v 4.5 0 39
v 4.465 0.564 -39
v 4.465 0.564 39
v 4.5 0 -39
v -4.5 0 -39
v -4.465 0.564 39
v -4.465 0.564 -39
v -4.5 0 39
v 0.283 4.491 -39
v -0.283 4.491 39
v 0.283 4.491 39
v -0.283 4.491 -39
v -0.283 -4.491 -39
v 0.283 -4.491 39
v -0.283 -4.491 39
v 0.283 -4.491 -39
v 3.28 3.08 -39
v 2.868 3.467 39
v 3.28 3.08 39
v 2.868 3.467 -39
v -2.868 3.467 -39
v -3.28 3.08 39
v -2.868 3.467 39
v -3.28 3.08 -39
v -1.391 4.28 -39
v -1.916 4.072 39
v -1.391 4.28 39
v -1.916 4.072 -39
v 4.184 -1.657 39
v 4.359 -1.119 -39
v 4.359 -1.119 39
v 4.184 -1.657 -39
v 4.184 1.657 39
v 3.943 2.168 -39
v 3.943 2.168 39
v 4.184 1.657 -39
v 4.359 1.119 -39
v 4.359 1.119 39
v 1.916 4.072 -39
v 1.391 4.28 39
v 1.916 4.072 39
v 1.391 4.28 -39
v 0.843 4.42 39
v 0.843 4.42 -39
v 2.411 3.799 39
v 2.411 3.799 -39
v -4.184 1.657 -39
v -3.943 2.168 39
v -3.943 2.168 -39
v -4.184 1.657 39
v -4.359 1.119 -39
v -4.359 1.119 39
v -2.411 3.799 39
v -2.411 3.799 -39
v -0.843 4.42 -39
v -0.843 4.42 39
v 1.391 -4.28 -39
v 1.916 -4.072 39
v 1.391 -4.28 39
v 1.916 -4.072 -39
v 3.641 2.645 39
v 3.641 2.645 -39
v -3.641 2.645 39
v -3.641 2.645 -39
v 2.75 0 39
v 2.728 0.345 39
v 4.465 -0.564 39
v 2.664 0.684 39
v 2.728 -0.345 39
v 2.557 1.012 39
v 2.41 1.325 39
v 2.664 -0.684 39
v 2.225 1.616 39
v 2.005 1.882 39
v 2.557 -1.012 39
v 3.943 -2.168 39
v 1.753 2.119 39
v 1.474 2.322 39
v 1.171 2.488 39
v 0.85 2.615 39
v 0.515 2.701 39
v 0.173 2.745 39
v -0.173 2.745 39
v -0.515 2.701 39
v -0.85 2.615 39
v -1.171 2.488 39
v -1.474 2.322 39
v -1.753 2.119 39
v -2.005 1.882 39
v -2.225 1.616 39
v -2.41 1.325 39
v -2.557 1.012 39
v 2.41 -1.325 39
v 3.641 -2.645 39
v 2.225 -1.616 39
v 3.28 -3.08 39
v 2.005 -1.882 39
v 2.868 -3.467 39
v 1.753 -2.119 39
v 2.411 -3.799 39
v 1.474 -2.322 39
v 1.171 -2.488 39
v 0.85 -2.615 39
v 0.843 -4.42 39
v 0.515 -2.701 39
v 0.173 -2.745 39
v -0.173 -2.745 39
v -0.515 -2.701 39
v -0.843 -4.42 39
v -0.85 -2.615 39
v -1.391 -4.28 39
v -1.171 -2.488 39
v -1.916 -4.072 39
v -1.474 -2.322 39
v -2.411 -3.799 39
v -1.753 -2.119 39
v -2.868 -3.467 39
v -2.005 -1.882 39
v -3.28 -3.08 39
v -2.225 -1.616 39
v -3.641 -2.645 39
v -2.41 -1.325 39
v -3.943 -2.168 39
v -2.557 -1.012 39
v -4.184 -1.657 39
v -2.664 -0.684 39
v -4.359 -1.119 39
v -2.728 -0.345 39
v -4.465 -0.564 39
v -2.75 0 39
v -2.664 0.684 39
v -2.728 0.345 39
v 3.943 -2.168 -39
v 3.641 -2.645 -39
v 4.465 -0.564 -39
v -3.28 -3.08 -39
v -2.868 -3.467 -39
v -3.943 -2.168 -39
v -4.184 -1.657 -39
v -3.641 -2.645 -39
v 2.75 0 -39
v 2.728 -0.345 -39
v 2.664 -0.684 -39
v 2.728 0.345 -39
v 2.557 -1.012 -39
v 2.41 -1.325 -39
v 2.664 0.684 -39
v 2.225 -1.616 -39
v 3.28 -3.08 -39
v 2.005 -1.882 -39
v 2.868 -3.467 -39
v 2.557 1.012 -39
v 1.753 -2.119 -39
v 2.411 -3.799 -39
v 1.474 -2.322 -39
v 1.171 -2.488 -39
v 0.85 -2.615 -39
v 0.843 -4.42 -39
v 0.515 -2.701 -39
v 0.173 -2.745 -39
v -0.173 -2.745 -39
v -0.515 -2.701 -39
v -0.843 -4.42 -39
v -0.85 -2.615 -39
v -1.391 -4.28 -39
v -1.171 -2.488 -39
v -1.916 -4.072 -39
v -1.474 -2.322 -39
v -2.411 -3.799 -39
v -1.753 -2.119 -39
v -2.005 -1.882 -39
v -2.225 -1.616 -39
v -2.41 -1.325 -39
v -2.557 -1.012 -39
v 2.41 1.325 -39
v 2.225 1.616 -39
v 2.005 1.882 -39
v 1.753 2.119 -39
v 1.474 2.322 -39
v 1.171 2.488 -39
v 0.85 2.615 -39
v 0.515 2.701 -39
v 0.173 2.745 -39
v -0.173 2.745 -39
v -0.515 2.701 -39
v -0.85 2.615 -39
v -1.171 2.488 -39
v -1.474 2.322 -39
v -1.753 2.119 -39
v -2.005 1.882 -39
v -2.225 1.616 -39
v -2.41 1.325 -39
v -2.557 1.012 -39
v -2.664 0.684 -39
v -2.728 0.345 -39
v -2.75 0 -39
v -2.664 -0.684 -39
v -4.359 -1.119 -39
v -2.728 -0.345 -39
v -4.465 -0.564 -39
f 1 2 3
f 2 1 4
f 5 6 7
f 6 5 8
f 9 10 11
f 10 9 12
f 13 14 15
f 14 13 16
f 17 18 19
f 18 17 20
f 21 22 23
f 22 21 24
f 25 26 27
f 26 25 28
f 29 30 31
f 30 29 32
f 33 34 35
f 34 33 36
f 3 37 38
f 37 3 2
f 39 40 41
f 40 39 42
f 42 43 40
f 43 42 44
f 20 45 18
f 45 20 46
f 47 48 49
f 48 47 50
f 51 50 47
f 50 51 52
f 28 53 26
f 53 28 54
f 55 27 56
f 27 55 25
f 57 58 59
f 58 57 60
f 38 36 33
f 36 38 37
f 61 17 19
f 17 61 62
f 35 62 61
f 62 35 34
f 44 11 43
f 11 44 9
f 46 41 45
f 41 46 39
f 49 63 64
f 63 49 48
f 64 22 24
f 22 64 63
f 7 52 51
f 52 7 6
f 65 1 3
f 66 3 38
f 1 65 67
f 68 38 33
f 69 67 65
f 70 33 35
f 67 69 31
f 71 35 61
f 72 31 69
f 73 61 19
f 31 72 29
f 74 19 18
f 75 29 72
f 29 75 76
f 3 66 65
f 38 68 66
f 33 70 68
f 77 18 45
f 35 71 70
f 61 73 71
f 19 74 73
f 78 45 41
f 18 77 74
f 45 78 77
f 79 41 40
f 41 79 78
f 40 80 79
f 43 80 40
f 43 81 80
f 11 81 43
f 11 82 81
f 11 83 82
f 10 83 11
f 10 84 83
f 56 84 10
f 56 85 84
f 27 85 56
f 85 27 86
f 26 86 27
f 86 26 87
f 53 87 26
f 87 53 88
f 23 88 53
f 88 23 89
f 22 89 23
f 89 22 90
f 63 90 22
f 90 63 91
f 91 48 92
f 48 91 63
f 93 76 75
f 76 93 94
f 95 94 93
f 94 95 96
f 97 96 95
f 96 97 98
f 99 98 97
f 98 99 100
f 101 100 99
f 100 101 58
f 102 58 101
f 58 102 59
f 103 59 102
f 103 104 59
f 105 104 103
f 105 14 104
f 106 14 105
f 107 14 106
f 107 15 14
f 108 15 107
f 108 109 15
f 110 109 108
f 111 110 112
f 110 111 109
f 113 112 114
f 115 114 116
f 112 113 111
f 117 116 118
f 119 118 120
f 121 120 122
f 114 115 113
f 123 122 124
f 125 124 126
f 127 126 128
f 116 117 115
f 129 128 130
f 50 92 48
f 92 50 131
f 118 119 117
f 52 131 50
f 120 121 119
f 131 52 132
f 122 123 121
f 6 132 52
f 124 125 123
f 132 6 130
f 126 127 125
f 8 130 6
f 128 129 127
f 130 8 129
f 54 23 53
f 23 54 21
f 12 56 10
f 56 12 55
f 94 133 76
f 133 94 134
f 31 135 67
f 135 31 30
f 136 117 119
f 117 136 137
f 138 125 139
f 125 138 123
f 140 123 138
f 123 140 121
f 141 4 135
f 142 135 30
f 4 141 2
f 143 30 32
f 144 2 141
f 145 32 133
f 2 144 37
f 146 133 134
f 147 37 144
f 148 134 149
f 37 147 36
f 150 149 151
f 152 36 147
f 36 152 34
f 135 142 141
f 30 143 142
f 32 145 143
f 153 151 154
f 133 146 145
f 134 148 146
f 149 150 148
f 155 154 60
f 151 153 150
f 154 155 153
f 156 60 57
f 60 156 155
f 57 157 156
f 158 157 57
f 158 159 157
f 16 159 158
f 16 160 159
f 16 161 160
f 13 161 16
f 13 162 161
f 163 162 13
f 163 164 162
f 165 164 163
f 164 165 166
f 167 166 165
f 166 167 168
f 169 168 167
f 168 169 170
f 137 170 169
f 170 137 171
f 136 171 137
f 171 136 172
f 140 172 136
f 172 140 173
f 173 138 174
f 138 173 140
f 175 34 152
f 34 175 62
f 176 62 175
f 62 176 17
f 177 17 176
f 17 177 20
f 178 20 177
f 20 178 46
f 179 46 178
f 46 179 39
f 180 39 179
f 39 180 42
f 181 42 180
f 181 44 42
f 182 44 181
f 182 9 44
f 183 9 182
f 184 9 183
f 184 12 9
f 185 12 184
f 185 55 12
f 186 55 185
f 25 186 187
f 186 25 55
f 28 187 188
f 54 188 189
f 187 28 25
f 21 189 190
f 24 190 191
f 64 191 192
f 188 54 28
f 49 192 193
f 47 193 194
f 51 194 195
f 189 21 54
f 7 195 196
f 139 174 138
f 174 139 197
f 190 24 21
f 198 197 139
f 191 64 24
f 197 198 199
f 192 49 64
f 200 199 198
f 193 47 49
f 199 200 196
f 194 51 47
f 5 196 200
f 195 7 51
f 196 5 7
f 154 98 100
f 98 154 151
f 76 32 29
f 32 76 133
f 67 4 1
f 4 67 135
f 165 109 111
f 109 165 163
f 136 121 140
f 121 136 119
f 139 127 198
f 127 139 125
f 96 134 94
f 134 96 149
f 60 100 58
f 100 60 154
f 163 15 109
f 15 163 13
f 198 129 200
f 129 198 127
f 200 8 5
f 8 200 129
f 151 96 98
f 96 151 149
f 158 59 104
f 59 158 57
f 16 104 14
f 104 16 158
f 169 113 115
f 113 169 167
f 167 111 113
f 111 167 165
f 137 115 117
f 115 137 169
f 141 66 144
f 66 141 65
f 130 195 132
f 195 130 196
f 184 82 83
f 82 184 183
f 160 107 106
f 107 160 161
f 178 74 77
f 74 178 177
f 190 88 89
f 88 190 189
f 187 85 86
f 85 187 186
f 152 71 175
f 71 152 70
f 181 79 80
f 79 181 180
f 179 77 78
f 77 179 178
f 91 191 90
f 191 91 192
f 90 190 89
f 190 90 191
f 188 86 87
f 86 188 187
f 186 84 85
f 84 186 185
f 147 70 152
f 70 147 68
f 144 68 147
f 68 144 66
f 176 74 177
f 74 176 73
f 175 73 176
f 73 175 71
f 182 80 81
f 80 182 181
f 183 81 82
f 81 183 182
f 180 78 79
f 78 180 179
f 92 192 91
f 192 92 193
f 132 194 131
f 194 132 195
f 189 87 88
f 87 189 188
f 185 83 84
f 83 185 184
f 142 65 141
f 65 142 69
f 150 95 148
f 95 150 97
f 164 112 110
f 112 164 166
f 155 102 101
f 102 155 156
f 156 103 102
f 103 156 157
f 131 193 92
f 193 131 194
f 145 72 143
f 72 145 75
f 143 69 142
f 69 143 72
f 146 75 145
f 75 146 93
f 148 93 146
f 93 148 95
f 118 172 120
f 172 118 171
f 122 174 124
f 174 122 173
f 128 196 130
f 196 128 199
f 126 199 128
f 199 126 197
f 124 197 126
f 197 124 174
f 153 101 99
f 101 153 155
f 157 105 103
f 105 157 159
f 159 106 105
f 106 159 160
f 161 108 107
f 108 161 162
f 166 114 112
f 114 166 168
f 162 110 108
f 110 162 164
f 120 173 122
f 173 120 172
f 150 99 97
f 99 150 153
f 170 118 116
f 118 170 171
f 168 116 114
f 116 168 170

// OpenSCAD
$fn = 50;


difference() {
	union() {
		translate(v = [0, 0, -39.0000000000]) {
			cylinder(h = 78, r = 4.5000000000);
		}
	}
	union() {
		translate(v = [0, 0, -100.0000000000]) {
			cylinder(h = 200, r = 2.7500000000);
		}
	}
}
